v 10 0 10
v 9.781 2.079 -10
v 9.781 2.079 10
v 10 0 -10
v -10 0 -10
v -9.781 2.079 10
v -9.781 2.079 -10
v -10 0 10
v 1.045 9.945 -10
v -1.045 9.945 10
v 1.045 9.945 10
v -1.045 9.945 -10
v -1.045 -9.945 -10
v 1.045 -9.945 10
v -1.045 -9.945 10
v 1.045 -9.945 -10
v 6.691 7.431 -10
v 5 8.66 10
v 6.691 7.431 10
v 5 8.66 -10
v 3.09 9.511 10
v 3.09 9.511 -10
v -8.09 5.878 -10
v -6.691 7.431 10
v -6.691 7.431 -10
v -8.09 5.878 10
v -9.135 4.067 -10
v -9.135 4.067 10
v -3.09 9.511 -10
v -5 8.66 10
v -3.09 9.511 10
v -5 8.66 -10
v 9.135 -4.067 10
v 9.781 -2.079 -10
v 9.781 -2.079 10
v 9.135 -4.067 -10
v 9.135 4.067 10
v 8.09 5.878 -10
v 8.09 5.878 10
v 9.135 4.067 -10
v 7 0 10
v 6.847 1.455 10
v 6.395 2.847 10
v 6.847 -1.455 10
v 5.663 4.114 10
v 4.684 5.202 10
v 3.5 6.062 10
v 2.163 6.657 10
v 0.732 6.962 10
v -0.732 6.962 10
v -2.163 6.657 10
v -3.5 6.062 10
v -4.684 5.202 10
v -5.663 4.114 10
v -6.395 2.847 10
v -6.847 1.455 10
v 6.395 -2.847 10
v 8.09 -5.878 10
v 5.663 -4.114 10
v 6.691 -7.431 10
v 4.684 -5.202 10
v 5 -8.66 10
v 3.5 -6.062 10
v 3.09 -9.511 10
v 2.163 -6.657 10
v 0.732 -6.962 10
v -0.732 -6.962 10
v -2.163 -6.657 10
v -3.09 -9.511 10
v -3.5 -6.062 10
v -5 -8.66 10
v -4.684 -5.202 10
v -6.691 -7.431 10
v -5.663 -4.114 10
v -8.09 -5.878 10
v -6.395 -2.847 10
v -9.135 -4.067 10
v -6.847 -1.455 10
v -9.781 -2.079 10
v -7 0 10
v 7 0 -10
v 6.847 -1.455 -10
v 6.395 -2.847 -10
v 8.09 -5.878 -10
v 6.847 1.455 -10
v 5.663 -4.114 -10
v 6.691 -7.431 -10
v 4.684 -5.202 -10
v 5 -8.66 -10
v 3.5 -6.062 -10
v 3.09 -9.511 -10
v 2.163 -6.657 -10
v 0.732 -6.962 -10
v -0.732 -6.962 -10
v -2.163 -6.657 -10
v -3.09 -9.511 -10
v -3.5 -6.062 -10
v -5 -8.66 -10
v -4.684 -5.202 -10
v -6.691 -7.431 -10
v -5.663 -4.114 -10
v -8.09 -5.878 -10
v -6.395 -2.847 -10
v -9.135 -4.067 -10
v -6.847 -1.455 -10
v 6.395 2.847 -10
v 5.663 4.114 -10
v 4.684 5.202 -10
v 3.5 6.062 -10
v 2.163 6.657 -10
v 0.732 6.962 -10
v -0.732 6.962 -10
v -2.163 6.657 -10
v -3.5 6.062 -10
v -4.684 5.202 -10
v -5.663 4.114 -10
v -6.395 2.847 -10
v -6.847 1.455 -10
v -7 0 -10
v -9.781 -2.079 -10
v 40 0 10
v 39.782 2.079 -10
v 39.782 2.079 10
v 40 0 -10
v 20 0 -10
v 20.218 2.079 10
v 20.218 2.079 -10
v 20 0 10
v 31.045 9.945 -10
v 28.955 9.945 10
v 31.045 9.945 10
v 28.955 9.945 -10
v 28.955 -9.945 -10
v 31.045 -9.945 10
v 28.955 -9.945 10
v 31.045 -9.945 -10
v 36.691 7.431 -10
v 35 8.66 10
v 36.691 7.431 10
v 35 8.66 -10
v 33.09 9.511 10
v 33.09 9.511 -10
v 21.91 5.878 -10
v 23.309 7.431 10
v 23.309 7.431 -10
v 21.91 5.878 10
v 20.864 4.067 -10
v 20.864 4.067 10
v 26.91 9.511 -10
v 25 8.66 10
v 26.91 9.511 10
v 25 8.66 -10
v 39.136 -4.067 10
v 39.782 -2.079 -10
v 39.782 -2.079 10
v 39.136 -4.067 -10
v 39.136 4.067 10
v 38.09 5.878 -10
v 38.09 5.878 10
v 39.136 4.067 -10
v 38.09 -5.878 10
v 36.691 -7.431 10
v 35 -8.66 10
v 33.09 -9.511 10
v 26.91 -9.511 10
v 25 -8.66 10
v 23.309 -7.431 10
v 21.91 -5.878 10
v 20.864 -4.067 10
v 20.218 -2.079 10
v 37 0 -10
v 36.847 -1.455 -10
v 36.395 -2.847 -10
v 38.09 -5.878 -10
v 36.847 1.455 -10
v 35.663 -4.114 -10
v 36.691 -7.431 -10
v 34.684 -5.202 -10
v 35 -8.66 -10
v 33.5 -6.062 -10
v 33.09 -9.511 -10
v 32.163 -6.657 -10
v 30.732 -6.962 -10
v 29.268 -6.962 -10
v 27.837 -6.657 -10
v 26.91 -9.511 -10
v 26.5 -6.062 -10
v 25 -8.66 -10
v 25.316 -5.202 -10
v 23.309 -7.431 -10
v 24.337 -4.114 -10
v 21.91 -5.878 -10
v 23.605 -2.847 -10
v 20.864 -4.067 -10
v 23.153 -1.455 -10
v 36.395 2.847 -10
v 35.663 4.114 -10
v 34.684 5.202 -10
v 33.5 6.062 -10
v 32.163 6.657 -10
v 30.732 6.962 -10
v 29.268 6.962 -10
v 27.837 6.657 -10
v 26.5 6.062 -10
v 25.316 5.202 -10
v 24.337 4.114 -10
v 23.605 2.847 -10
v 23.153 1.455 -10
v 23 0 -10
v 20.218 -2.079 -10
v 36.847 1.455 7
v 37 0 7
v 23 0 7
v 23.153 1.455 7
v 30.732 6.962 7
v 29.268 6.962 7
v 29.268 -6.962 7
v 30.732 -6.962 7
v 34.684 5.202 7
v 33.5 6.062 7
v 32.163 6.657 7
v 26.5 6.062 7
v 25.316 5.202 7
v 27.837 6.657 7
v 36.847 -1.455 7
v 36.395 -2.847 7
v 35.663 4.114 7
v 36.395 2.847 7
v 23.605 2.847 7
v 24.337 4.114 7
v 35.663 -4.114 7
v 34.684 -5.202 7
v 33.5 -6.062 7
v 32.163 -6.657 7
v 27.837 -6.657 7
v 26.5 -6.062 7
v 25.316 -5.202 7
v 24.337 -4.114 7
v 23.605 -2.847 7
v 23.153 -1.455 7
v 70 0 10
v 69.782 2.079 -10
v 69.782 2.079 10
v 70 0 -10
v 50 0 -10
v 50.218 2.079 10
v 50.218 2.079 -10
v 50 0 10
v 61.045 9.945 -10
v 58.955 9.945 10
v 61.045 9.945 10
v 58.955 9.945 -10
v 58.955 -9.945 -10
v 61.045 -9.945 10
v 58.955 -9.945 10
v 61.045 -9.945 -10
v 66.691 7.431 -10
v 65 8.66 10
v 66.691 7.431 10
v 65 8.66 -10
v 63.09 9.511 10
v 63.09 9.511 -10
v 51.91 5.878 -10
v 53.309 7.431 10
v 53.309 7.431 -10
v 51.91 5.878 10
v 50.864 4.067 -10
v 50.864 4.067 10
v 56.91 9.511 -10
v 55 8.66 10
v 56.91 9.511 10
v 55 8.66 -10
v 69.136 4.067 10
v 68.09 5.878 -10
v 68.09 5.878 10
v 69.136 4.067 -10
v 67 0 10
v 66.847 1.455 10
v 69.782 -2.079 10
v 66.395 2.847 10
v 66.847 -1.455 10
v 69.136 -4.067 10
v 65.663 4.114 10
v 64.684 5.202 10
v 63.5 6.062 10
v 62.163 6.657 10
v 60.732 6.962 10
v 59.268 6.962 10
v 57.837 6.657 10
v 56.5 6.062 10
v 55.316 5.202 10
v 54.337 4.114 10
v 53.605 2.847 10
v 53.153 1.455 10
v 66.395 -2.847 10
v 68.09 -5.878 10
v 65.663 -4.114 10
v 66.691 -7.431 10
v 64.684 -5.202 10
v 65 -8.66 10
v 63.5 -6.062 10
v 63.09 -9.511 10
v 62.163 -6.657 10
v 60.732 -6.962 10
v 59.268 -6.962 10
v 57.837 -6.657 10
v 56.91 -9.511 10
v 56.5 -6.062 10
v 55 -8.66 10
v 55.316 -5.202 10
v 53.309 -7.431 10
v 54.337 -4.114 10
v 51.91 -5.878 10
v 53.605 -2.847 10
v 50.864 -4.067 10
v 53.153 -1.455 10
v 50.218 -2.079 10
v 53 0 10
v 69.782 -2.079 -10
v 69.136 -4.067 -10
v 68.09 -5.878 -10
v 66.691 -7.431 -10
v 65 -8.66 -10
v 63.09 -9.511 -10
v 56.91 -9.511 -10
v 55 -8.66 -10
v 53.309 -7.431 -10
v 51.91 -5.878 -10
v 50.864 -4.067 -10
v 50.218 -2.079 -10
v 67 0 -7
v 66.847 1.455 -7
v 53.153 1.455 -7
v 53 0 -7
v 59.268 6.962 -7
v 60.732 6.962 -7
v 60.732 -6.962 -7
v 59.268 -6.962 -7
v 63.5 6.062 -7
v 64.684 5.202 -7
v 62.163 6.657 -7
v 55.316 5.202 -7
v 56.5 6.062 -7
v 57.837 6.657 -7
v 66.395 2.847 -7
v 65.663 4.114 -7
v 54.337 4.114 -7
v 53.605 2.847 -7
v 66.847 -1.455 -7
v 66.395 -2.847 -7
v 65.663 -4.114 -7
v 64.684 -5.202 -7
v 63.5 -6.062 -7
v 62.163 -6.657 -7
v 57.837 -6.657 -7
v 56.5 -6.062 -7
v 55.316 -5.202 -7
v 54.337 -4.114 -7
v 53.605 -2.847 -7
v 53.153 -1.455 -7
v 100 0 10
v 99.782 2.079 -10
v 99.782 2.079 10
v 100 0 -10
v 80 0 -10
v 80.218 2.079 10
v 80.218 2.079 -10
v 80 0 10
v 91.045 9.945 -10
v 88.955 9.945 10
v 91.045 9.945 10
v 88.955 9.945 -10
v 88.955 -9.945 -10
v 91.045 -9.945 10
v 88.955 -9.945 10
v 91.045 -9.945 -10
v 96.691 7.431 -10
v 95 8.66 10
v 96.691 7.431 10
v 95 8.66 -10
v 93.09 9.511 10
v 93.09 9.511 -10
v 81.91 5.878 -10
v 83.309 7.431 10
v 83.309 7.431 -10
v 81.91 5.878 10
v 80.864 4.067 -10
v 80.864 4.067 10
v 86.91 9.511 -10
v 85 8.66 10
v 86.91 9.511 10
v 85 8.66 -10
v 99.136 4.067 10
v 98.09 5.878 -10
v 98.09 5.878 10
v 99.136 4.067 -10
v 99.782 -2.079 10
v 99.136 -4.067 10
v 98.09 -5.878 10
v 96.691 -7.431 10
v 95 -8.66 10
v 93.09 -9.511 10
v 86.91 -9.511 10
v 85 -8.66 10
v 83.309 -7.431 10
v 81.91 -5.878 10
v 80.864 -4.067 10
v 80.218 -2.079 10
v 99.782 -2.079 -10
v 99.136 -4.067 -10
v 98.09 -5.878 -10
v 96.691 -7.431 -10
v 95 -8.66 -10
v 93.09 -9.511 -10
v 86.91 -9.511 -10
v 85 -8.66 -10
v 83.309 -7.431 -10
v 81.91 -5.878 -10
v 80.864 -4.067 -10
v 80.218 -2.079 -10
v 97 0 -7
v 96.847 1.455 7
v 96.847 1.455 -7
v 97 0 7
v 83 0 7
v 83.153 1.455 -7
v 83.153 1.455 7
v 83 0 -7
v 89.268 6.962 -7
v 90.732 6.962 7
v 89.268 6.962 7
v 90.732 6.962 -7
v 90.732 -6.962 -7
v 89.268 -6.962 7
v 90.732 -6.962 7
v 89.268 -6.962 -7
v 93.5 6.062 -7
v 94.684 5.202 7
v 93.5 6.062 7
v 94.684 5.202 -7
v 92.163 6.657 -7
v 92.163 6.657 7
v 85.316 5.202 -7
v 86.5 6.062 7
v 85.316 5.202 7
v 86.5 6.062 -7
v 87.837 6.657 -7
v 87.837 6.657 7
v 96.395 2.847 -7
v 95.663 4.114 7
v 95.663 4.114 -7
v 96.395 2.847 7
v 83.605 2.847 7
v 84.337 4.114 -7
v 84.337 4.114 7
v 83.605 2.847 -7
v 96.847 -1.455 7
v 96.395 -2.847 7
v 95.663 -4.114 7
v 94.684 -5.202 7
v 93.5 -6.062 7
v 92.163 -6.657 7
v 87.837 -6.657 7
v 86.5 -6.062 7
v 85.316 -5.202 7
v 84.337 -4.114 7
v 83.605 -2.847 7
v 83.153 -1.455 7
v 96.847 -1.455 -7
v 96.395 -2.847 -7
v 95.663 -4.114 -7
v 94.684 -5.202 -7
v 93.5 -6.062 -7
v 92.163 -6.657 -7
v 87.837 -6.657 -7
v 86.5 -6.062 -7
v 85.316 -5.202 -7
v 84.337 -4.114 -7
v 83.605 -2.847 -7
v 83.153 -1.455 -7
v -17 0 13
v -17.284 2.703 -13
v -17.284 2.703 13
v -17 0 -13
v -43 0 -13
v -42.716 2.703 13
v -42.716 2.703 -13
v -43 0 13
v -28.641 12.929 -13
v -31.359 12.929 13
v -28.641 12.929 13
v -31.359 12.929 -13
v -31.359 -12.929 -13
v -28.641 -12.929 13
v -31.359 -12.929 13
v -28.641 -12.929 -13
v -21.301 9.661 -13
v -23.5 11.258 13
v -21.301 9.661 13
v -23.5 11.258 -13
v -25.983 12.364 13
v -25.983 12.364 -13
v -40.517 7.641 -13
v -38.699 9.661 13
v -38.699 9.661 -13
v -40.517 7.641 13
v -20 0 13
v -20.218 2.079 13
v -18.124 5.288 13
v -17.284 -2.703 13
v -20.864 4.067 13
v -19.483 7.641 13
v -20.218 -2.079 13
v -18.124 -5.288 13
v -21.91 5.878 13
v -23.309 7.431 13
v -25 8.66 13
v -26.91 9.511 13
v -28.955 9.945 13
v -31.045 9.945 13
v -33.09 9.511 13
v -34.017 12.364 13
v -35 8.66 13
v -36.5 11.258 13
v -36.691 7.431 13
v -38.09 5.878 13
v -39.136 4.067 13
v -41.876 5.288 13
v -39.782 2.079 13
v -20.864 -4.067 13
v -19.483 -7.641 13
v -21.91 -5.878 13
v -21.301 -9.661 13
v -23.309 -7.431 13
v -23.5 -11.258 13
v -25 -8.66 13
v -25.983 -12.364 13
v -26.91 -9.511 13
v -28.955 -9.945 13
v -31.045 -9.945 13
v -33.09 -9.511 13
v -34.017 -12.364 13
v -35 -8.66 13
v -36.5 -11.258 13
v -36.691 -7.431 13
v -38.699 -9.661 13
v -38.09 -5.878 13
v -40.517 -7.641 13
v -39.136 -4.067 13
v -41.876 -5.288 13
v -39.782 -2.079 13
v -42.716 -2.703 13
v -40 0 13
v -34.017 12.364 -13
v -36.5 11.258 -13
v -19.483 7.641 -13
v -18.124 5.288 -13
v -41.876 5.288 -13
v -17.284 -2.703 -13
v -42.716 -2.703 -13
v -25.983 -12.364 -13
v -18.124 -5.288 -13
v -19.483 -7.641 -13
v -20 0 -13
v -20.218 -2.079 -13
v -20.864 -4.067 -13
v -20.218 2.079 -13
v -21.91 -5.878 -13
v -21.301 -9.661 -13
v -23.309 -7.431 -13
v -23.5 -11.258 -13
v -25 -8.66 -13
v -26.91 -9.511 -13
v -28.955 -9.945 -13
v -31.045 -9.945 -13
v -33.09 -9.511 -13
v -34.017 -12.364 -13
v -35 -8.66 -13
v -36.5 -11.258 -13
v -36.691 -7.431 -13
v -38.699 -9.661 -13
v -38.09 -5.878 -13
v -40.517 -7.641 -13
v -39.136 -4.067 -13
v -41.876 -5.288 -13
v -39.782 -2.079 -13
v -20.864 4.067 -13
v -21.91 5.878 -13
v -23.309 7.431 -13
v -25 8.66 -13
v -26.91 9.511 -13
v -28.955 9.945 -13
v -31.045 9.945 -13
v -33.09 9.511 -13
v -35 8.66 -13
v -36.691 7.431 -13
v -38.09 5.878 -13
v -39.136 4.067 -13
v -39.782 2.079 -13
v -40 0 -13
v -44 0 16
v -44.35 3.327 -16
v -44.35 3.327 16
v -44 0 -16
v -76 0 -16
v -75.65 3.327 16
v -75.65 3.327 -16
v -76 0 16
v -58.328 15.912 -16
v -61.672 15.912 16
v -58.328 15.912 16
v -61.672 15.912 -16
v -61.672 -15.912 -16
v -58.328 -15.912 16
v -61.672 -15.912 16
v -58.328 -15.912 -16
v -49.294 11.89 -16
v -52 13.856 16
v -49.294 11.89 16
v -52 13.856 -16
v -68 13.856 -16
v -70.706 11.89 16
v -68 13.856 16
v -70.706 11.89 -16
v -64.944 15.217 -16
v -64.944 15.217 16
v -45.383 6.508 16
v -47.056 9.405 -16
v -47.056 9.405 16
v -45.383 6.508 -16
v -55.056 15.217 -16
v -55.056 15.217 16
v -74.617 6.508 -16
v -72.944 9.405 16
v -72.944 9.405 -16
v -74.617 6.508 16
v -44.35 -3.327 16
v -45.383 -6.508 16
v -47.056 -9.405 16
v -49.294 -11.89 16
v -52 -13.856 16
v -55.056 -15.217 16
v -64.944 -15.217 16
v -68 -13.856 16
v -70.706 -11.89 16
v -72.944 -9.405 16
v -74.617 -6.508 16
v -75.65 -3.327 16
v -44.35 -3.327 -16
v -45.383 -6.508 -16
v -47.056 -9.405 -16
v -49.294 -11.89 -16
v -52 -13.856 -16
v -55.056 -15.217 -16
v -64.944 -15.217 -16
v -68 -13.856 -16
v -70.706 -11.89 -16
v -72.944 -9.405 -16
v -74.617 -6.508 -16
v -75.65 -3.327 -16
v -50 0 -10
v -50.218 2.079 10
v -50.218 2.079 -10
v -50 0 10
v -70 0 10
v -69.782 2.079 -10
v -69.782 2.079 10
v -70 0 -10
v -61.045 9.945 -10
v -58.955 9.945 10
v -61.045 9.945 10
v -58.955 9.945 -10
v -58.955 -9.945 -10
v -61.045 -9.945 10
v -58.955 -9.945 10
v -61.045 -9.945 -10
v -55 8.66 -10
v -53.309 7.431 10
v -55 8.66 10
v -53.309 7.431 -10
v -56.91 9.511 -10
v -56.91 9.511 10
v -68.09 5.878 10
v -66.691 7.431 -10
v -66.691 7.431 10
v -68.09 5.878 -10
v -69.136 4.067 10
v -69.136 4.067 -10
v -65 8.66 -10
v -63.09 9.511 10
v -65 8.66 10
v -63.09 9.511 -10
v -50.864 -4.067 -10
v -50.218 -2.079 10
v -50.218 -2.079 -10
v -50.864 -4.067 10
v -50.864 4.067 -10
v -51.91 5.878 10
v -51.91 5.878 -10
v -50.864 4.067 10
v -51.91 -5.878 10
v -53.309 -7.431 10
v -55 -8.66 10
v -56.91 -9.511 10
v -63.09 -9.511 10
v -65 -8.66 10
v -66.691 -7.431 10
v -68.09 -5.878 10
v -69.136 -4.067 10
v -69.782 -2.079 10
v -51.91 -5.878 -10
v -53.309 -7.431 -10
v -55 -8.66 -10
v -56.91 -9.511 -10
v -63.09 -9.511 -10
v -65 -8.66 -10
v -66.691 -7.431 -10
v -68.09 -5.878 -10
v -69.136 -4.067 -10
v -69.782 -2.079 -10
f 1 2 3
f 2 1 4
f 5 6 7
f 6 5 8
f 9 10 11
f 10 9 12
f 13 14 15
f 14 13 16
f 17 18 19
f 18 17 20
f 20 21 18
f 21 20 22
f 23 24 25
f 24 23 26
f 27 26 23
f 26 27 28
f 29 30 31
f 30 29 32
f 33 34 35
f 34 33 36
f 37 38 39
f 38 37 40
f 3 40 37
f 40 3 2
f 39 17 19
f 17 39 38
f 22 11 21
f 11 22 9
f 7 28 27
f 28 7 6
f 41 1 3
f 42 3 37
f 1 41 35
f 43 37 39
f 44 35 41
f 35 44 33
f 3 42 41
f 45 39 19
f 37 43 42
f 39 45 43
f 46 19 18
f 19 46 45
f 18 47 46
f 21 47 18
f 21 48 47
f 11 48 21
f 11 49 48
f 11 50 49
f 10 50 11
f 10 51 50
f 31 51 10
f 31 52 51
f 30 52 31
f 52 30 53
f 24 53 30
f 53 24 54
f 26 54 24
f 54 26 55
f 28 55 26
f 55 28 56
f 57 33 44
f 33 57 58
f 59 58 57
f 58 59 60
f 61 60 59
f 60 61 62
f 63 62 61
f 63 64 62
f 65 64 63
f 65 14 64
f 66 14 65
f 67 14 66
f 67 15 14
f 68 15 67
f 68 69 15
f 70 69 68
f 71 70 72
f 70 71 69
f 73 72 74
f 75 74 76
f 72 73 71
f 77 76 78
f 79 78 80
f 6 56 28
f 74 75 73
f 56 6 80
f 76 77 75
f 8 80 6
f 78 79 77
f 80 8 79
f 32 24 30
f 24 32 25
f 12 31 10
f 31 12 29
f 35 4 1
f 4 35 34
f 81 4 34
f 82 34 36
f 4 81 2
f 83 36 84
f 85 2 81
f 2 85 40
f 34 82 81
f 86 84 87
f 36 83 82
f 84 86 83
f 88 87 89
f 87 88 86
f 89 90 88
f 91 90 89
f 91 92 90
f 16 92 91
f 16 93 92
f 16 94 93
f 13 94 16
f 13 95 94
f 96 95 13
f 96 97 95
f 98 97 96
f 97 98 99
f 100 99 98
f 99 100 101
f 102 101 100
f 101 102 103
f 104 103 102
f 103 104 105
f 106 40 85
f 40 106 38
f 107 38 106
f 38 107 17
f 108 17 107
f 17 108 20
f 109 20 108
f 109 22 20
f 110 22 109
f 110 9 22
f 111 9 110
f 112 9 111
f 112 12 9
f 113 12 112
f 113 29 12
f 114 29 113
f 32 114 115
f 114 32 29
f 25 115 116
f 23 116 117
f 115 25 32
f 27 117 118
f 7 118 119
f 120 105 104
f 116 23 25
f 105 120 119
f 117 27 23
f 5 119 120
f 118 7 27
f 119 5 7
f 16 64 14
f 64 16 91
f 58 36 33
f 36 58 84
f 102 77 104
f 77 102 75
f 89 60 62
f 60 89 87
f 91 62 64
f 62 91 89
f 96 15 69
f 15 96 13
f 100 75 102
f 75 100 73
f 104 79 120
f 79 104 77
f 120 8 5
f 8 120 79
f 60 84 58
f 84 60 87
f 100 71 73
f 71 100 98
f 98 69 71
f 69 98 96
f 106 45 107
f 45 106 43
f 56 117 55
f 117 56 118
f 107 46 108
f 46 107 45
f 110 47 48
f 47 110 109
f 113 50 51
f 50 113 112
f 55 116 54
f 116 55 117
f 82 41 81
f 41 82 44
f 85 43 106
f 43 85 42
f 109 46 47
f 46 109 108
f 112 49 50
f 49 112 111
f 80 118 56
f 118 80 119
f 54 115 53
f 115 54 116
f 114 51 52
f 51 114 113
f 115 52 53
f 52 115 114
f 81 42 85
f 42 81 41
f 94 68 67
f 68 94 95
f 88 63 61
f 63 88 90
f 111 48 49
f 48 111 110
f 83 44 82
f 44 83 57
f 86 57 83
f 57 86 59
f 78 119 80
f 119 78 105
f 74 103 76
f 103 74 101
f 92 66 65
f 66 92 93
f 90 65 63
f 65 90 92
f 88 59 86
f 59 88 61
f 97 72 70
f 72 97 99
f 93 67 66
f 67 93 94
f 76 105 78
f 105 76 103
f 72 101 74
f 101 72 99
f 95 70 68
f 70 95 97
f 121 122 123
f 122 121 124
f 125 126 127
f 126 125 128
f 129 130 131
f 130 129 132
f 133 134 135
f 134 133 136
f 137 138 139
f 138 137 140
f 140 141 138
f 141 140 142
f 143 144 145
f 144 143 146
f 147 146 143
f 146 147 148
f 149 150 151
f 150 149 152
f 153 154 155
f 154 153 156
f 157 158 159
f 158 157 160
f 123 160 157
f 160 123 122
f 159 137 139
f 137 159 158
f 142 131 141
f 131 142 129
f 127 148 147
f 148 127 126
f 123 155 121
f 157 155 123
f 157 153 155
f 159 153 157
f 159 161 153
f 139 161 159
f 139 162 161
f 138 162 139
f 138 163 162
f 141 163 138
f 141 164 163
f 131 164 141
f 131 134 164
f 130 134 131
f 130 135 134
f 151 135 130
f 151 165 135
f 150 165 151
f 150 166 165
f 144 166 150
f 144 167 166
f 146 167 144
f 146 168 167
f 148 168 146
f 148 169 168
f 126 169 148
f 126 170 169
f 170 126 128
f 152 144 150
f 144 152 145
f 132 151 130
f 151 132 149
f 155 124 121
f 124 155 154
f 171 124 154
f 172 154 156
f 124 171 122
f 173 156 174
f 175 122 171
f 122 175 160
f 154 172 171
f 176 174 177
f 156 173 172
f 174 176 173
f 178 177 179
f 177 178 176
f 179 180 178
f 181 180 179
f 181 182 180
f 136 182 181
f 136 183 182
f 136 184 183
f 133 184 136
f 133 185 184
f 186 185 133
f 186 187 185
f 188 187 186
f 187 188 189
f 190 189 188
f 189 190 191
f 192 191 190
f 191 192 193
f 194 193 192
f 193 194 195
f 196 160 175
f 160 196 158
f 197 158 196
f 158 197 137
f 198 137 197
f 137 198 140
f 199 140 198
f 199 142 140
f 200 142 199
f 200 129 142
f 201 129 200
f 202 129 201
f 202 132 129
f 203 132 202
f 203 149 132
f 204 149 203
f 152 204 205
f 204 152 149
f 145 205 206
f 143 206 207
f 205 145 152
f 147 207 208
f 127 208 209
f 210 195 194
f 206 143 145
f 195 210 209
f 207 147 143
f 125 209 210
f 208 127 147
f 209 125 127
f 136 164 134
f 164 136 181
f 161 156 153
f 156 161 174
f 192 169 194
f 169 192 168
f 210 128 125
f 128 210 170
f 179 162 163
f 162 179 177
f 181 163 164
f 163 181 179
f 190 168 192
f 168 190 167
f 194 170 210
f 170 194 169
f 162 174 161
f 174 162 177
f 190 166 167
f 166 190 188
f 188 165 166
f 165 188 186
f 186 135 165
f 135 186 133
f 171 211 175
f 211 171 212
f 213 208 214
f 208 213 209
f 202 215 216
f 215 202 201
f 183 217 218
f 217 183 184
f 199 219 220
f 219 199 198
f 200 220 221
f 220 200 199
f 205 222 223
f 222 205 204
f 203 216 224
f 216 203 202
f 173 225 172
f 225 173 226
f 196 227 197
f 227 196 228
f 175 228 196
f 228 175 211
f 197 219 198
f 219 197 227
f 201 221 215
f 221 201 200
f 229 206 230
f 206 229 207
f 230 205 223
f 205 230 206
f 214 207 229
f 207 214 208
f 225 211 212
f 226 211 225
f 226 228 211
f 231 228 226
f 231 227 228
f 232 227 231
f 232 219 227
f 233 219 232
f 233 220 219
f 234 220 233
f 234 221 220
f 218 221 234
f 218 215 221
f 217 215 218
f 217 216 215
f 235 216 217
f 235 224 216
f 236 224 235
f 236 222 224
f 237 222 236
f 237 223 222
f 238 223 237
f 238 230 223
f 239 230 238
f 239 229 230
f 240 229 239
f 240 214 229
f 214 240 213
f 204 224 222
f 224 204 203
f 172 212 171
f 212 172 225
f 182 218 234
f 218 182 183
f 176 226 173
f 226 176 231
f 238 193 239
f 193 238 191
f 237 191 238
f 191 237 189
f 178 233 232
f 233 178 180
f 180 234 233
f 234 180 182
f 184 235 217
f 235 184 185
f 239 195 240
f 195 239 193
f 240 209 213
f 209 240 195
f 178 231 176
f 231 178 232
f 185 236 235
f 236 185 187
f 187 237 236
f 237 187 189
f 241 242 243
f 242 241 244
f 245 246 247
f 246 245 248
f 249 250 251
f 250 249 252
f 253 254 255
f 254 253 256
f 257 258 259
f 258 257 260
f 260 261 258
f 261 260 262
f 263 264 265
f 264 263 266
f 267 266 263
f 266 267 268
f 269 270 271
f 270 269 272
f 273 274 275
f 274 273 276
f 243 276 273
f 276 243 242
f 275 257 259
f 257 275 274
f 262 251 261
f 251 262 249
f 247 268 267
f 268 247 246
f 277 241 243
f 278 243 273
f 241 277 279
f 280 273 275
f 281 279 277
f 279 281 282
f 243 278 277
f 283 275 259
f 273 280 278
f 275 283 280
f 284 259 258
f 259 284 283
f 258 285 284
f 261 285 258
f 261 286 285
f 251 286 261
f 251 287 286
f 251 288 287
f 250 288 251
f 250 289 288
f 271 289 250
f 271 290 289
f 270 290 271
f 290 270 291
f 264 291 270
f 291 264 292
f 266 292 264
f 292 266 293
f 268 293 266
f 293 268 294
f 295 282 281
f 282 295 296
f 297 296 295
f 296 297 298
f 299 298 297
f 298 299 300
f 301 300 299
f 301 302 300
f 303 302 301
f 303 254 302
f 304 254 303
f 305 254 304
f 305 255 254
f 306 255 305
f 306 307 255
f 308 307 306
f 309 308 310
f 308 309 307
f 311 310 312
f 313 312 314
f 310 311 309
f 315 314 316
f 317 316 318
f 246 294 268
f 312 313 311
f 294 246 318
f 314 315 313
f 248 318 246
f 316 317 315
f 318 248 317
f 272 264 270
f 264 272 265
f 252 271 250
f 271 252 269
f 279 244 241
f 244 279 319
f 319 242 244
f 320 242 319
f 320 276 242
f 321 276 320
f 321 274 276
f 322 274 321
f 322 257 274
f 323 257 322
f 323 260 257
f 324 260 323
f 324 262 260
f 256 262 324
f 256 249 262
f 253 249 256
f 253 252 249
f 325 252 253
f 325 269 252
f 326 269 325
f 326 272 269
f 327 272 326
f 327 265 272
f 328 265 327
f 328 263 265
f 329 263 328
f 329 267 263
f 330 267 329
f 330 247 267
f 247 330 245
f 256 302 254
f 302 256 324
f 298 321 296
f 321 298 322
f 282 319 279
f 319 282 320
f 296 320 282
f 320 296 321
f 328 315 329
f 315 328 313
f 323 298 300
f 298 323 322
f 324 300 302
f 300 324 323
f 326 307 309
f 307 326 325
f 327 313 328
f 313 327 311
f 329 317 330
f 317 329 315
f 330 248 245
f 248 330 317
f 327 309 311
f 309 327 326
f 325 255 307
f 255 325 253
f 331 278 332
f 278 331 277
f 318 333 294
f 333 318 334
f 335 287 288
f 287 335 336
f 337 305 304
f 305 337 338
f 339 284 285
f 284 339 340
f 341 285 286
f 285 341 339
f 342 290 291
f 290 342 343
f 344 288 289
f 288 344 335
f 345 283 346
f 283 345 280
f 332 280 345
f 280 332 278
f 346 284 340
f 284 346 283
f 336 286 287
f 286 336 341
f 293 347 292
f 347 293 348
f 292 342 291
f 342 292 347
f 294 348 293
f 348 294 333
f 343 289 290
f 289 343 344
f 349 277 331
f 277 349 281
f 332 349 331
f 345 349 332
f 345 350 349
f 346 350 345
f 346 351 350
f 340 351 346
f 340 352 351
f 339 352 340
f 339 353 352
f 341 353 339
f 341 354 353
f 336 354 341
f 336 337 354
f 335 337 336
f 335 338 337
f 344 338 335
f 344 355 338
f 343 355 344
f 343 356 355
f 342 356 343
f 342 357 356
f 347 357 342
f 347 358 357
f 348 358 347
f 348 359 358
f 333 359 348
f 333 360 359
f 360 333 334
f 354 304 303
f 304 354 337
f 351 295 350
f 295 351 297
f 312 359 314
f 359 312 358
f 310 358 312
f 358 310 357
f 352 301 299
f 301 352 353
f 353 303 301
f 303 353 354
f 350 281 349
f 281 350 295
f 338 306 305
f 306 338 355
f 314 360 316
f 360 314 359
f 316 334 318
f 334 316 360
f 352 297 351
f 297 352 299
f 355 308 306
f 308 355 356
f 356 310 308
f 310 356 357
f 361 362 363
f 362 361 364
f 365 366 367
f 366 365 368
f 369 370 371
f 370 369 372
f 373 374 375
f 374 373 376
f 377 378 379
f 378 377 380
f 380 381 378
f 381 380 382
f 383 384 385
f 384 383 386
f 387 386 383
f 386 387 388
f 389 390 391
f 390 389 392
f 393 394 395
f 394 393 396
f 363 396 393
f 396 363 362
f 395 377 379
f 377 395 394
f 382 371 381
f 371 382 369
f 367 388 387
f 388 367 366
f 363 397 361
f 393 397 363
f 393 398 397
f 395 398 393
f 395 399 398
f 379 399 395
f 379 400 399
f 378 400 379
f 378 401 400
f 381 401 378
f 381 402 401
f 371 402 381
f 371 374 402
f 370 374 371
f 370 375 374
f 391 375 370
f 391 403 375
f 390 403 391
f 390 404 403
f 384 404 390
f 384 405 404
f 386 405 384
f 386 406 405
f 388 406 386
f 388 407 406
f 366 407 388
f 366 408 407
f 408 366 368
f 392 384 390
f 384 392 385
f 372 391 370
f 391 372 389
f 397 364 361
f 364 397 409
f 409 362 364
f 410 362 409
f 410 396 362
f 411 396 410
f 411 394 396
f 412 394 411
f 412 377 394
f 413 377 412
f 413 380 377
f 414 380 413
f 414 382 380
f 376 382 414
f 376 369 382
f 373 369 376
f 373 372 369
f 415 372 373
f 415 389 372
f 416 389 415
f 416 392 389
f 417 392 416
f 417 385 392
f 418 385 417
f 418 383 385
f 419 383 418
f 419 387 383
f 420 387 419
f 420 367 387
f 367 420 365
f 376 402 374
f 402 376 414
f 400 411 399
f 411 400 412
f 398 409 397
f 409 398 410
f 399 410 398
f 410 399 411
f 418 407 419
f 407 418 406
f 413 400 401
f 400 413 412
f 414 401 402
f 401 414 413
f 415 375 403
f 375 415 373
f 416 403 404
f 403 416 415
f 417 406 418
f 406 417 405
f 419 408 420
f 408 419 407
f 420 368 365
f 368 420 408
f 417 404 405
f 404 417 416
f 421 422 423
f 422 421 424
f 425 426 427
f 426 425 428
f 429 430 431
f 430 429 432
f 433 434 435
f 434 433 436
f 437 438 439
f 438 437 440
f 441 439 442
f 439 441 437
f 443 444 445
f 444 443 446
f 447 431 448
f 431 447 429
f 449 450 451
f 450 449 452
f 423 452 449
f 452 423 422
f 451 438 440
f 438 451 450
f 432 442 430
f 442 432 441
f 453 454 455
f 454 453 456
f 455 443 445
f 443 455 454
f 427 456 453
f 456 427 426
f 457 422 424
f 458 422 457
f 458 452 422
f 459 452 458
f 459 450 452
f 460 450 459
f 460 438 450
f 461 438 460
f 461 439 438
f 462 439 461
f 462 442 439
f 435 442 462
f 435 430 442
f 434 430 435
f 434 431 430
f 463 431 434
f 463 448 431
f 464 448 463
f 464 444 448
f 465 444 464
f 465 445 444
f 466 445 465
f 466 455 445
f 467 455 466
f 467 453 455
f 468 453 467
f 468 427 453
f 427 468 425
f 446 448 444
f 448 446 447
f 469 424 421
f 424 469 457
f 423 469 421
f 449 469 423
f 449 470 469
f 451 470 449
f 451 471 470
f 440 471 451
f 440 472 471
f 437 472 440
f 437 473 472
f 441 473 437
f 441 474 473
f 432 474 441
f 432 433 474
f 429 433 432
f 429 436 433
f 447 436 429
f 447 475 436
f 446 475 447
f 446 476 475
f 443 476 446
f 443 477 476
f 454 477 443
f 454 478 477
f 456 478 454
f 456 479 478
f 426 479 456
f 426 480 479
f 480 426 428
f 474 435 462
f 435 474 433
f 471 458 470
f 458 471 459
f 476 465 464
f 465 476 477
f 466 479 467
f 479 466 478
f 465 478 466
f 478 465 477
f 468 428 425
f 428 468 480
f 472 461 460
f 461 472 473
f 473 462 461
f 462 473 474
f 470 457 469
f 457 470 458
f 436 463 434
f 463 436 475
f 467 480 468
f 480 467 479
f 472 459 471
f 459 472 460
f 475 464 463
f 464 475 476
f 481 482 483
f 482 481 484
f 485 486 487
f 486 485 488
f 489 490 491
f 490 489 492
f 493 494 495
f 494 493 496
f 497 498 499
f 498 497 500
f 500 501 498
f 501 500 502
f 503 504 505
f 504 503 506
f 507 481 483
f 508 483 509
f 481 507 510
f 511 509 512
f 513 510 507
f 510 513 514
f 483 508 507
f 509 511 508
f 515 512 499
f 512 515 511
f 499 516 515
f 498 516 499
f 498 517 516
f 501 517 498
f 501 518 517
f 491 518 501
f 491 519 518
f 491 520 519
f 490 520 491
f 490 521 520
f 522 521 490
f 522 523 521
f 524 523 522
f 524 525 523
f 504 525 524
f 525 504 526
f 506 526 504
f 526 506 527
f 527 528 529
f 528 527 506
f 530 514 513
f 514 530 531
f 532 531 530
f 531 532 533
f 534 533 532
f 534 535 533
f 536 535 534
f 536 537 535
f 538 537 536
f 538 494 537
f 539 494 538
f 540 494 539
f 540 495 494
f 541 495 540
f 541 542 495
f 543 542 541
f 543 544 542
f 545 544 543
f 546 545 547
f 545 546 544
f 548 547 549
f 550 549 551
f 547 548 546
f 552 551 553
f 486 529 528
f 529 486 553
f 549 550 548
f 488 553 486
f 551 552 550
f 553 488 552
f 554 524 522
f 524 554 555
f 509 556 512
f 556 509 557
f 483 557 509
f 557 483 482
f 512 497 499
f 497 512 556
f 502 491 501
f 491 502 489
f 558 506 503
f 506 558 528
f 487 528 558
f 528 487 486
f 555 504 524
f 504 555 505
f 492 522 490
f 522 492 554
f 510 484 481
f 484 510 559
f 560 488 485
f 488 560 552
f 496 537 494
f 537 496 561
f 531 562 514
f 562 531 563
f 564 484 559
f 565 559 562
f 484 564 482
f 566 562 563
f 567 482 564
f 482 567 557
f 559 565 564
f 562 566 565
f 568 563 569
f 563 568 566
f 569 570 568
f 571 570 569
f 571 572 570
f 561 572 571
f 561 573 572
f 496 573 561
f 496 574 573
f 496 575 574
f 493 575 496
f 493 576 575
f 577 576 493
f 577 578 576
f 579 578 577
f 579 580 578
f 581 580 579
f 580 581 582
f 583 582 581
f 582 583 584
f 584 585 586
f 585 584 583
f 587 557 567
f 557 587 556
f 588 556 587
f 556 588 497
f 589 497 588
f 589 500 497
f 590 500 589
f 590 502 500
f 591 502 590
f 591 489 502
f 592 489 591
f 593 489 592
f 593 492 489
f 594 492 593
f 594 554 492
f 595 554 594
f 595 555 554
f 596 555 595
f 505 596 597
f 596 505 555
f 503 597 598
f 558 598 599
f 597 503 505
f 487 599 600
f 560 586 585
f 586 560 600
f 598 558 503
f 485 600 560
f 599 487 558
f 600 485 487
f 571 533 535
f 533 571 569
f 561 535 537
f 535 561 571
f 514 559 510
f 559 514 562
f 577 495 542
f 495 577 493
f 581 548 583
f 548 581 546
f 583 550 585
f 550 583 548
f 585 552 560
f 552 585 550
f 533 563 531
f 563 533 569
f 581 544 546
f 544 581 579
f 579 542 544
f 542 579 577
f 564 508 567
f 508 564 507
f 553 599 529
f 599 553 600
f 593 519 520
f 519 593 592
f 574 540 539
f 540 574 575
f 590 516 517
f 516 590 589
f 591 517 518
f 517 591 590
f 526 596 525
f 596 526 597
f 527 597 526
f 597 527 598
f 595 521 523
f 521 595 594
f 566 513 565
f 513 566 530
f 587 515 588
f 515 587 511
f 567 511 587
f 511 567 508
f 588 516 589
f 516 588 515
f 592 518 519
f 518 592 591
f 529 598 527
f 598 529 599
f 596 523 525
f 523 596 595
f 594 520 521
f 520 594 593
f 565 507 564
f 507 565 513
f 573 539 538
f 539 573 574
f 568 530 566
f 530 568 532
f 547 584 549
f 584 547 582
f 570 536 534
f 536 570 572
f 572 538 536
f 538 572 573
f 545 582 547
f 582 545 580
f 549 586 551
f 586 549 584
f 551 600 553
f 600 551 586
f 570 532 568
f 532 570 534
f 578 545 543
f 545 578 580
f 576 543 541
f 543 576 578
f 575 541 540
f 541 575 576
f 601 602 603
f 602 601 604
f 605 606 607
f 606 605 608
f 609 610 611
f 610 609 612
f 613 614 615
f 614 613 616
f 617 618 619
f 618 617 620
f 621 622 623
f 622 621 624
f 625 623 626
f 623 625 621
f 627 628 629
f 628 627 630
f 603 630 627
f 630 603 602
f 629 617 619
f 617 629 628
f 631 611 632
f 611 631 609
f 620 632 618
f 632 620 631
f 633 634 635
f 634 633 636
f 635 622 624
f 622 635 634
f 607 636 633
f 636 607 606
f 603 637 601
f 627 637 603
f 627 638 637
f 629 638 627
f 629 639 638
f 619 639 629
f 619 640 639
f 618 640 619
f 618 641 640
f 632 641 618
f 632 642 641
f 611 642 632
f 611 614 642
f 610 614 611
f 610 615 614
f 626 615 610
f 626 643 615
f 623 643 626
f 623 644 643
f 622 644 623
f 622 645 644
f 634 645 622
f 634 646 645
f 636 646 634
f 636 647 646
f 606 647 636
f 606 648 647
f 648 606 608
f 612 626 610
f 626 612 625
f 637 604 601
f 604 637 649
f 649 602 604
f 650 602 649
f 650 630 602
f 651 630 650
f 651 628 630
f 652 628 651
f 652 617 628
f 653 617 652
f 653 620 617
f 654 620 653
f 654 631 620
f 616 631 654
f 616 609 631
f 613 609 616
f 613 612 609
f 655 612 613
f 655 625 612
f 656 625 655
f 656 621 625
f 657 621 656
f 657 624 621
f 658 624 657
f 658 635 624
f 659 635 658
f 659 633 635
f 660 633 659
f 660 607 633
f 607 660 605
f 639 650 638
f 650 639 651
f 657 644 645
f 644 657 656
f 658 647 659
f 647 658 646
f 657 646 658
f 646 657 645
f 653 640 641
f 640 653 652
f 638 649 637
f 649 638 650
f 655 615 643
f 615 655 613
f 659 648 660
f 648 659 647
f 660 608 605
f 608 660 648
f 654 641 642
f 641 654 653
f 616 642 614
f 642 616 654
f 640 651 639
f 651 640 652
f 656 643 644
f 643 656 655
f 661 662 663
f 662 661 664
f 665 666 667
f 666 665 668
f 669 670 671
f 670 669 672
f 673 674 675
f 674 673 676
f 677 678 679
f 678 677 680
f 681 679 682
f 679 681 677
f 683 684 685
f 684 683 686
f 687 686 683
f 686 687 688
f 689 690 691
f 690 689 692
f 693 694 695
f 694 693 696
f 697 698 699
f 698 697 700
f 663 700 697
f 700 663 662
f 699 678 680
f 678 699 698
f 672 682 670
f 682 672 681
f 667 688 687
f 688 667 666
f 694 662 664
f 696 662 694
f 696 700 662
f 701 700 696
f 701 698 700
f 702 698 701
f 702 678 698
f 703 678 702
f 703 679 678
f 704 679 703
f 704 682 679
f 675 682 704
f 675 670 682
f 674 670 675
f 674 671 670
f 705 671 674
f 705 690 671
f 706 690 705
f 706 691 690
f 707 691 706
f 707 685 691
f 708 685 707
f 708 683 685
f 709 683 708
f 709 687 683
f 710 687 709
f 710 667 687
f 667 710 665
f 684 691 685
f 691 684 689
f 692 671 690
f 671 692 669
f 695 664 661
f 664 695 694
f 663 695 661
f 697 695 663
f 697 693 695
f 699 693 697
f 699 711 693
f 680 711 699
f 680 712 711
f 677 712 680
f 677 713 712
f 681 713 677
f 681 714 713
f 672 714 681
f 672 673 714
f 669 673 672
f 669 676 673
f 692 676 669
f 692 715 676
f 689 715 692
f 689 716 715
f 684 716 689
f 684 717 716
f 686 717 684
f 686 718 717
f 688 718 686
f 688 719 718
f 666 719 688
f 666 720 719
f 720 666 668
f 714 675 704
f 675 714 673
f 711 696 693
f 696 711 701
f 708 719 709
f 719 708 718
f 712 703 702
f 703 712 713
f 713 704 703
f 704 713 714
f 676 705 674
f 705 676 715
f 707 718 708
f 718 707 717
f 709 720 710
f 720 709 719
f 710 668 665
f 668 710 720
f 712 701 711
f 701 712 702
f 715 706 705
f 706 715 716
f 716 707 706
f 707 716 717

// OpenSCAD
//
// Creates a hollow cylinder.
// Params:
//  r -- Radio.
//  h -- Height.
//  t -- Thickness.
//  top -- [true, false]
//         true: Cylinder has a closed top.
//         false: Cylinder has an opened top.
//  bottom -- [true, false]
//            true: Cylinder has a closed bottom.
//            false: Cylinder has an opened bottom.
//  center -- If true it centers the object in origin [0,0,0].
//  inwards -- [true, false] If true, the cylinder has r radio and thickness
//             goes inwards. If false, the cylinder has r+t radio (thickness
//             goes outwards).
//
module hollow_cylinder(r=10, h=20, t=3, top=false, bottom=false, center=false, 
                       inwards=true, $fn=10) 
{

  // Main cylinder height.
  height = (inwards) ? h : h + 2 * t;
  
  // Compute hollow cylinder height. If closed top and bottom then hollow 
  // cylinder leaves t (thickness) on top and bottom. If not let hollow
  // cylinder be a bit higher than main cylinder.
  h_height = (top && bottom)? height - 2 * t : height + 2;

  // Compute main cylinder radio. Thickness goes inwards or outwards.
  radio = (inwards) ? r : r + t;

  // Compute hollow cylinder radio.
  h_radio = radio - t;

  // Compute hollow cylinder Z move to "open" if top and/or bottom are false.
  sign = (top)? -1 : +1;
  z = ((top && bottom) || (!top && !bottom)) ? 0 : sign * (t + 1);
  
  difference() 
  {
    // Main cylinder.
    cylinder(r=radio, h=height, center=center, $fn=$fn);
    // Lets compute the negative of the hollow.
    translate([0,0,z])
      cylinder(r=h_radio, h=h_height, center=center, $fn=$fn);
  }

}

// Hollow cylinder with opened top and bottom.
hollow_cylinder(center=true, $fn=30);

// Hollow cylinder with closed top and opened bottom. 
translate([30,0,0])
  hollow_cylinder(top=true, center=true, $fn=30);

// Hollow cylinder with opened top and closed bottom. 
translate([60,0,0])
  hollow_cylinder(bottom=true, center=true, $fn=30);

// Hollow cylinder with closed top and bottom. 
translate([90,0,0])
  hollow_cylinder(top=true, bottom=true, center=true, $fn=30);

// Hollow cylinder with closed top and bottom. 
translate([-30,0,0])
  hollow_cylinder(inwards=false, center=true, $fn=30);

// Hollow cylinder with closed top and bottom. 
translate([-60,0,0])
  hollow_cylinder(inwards=false, t=6, top=true, bottom=true, 
                  center=true, $fn=30);
